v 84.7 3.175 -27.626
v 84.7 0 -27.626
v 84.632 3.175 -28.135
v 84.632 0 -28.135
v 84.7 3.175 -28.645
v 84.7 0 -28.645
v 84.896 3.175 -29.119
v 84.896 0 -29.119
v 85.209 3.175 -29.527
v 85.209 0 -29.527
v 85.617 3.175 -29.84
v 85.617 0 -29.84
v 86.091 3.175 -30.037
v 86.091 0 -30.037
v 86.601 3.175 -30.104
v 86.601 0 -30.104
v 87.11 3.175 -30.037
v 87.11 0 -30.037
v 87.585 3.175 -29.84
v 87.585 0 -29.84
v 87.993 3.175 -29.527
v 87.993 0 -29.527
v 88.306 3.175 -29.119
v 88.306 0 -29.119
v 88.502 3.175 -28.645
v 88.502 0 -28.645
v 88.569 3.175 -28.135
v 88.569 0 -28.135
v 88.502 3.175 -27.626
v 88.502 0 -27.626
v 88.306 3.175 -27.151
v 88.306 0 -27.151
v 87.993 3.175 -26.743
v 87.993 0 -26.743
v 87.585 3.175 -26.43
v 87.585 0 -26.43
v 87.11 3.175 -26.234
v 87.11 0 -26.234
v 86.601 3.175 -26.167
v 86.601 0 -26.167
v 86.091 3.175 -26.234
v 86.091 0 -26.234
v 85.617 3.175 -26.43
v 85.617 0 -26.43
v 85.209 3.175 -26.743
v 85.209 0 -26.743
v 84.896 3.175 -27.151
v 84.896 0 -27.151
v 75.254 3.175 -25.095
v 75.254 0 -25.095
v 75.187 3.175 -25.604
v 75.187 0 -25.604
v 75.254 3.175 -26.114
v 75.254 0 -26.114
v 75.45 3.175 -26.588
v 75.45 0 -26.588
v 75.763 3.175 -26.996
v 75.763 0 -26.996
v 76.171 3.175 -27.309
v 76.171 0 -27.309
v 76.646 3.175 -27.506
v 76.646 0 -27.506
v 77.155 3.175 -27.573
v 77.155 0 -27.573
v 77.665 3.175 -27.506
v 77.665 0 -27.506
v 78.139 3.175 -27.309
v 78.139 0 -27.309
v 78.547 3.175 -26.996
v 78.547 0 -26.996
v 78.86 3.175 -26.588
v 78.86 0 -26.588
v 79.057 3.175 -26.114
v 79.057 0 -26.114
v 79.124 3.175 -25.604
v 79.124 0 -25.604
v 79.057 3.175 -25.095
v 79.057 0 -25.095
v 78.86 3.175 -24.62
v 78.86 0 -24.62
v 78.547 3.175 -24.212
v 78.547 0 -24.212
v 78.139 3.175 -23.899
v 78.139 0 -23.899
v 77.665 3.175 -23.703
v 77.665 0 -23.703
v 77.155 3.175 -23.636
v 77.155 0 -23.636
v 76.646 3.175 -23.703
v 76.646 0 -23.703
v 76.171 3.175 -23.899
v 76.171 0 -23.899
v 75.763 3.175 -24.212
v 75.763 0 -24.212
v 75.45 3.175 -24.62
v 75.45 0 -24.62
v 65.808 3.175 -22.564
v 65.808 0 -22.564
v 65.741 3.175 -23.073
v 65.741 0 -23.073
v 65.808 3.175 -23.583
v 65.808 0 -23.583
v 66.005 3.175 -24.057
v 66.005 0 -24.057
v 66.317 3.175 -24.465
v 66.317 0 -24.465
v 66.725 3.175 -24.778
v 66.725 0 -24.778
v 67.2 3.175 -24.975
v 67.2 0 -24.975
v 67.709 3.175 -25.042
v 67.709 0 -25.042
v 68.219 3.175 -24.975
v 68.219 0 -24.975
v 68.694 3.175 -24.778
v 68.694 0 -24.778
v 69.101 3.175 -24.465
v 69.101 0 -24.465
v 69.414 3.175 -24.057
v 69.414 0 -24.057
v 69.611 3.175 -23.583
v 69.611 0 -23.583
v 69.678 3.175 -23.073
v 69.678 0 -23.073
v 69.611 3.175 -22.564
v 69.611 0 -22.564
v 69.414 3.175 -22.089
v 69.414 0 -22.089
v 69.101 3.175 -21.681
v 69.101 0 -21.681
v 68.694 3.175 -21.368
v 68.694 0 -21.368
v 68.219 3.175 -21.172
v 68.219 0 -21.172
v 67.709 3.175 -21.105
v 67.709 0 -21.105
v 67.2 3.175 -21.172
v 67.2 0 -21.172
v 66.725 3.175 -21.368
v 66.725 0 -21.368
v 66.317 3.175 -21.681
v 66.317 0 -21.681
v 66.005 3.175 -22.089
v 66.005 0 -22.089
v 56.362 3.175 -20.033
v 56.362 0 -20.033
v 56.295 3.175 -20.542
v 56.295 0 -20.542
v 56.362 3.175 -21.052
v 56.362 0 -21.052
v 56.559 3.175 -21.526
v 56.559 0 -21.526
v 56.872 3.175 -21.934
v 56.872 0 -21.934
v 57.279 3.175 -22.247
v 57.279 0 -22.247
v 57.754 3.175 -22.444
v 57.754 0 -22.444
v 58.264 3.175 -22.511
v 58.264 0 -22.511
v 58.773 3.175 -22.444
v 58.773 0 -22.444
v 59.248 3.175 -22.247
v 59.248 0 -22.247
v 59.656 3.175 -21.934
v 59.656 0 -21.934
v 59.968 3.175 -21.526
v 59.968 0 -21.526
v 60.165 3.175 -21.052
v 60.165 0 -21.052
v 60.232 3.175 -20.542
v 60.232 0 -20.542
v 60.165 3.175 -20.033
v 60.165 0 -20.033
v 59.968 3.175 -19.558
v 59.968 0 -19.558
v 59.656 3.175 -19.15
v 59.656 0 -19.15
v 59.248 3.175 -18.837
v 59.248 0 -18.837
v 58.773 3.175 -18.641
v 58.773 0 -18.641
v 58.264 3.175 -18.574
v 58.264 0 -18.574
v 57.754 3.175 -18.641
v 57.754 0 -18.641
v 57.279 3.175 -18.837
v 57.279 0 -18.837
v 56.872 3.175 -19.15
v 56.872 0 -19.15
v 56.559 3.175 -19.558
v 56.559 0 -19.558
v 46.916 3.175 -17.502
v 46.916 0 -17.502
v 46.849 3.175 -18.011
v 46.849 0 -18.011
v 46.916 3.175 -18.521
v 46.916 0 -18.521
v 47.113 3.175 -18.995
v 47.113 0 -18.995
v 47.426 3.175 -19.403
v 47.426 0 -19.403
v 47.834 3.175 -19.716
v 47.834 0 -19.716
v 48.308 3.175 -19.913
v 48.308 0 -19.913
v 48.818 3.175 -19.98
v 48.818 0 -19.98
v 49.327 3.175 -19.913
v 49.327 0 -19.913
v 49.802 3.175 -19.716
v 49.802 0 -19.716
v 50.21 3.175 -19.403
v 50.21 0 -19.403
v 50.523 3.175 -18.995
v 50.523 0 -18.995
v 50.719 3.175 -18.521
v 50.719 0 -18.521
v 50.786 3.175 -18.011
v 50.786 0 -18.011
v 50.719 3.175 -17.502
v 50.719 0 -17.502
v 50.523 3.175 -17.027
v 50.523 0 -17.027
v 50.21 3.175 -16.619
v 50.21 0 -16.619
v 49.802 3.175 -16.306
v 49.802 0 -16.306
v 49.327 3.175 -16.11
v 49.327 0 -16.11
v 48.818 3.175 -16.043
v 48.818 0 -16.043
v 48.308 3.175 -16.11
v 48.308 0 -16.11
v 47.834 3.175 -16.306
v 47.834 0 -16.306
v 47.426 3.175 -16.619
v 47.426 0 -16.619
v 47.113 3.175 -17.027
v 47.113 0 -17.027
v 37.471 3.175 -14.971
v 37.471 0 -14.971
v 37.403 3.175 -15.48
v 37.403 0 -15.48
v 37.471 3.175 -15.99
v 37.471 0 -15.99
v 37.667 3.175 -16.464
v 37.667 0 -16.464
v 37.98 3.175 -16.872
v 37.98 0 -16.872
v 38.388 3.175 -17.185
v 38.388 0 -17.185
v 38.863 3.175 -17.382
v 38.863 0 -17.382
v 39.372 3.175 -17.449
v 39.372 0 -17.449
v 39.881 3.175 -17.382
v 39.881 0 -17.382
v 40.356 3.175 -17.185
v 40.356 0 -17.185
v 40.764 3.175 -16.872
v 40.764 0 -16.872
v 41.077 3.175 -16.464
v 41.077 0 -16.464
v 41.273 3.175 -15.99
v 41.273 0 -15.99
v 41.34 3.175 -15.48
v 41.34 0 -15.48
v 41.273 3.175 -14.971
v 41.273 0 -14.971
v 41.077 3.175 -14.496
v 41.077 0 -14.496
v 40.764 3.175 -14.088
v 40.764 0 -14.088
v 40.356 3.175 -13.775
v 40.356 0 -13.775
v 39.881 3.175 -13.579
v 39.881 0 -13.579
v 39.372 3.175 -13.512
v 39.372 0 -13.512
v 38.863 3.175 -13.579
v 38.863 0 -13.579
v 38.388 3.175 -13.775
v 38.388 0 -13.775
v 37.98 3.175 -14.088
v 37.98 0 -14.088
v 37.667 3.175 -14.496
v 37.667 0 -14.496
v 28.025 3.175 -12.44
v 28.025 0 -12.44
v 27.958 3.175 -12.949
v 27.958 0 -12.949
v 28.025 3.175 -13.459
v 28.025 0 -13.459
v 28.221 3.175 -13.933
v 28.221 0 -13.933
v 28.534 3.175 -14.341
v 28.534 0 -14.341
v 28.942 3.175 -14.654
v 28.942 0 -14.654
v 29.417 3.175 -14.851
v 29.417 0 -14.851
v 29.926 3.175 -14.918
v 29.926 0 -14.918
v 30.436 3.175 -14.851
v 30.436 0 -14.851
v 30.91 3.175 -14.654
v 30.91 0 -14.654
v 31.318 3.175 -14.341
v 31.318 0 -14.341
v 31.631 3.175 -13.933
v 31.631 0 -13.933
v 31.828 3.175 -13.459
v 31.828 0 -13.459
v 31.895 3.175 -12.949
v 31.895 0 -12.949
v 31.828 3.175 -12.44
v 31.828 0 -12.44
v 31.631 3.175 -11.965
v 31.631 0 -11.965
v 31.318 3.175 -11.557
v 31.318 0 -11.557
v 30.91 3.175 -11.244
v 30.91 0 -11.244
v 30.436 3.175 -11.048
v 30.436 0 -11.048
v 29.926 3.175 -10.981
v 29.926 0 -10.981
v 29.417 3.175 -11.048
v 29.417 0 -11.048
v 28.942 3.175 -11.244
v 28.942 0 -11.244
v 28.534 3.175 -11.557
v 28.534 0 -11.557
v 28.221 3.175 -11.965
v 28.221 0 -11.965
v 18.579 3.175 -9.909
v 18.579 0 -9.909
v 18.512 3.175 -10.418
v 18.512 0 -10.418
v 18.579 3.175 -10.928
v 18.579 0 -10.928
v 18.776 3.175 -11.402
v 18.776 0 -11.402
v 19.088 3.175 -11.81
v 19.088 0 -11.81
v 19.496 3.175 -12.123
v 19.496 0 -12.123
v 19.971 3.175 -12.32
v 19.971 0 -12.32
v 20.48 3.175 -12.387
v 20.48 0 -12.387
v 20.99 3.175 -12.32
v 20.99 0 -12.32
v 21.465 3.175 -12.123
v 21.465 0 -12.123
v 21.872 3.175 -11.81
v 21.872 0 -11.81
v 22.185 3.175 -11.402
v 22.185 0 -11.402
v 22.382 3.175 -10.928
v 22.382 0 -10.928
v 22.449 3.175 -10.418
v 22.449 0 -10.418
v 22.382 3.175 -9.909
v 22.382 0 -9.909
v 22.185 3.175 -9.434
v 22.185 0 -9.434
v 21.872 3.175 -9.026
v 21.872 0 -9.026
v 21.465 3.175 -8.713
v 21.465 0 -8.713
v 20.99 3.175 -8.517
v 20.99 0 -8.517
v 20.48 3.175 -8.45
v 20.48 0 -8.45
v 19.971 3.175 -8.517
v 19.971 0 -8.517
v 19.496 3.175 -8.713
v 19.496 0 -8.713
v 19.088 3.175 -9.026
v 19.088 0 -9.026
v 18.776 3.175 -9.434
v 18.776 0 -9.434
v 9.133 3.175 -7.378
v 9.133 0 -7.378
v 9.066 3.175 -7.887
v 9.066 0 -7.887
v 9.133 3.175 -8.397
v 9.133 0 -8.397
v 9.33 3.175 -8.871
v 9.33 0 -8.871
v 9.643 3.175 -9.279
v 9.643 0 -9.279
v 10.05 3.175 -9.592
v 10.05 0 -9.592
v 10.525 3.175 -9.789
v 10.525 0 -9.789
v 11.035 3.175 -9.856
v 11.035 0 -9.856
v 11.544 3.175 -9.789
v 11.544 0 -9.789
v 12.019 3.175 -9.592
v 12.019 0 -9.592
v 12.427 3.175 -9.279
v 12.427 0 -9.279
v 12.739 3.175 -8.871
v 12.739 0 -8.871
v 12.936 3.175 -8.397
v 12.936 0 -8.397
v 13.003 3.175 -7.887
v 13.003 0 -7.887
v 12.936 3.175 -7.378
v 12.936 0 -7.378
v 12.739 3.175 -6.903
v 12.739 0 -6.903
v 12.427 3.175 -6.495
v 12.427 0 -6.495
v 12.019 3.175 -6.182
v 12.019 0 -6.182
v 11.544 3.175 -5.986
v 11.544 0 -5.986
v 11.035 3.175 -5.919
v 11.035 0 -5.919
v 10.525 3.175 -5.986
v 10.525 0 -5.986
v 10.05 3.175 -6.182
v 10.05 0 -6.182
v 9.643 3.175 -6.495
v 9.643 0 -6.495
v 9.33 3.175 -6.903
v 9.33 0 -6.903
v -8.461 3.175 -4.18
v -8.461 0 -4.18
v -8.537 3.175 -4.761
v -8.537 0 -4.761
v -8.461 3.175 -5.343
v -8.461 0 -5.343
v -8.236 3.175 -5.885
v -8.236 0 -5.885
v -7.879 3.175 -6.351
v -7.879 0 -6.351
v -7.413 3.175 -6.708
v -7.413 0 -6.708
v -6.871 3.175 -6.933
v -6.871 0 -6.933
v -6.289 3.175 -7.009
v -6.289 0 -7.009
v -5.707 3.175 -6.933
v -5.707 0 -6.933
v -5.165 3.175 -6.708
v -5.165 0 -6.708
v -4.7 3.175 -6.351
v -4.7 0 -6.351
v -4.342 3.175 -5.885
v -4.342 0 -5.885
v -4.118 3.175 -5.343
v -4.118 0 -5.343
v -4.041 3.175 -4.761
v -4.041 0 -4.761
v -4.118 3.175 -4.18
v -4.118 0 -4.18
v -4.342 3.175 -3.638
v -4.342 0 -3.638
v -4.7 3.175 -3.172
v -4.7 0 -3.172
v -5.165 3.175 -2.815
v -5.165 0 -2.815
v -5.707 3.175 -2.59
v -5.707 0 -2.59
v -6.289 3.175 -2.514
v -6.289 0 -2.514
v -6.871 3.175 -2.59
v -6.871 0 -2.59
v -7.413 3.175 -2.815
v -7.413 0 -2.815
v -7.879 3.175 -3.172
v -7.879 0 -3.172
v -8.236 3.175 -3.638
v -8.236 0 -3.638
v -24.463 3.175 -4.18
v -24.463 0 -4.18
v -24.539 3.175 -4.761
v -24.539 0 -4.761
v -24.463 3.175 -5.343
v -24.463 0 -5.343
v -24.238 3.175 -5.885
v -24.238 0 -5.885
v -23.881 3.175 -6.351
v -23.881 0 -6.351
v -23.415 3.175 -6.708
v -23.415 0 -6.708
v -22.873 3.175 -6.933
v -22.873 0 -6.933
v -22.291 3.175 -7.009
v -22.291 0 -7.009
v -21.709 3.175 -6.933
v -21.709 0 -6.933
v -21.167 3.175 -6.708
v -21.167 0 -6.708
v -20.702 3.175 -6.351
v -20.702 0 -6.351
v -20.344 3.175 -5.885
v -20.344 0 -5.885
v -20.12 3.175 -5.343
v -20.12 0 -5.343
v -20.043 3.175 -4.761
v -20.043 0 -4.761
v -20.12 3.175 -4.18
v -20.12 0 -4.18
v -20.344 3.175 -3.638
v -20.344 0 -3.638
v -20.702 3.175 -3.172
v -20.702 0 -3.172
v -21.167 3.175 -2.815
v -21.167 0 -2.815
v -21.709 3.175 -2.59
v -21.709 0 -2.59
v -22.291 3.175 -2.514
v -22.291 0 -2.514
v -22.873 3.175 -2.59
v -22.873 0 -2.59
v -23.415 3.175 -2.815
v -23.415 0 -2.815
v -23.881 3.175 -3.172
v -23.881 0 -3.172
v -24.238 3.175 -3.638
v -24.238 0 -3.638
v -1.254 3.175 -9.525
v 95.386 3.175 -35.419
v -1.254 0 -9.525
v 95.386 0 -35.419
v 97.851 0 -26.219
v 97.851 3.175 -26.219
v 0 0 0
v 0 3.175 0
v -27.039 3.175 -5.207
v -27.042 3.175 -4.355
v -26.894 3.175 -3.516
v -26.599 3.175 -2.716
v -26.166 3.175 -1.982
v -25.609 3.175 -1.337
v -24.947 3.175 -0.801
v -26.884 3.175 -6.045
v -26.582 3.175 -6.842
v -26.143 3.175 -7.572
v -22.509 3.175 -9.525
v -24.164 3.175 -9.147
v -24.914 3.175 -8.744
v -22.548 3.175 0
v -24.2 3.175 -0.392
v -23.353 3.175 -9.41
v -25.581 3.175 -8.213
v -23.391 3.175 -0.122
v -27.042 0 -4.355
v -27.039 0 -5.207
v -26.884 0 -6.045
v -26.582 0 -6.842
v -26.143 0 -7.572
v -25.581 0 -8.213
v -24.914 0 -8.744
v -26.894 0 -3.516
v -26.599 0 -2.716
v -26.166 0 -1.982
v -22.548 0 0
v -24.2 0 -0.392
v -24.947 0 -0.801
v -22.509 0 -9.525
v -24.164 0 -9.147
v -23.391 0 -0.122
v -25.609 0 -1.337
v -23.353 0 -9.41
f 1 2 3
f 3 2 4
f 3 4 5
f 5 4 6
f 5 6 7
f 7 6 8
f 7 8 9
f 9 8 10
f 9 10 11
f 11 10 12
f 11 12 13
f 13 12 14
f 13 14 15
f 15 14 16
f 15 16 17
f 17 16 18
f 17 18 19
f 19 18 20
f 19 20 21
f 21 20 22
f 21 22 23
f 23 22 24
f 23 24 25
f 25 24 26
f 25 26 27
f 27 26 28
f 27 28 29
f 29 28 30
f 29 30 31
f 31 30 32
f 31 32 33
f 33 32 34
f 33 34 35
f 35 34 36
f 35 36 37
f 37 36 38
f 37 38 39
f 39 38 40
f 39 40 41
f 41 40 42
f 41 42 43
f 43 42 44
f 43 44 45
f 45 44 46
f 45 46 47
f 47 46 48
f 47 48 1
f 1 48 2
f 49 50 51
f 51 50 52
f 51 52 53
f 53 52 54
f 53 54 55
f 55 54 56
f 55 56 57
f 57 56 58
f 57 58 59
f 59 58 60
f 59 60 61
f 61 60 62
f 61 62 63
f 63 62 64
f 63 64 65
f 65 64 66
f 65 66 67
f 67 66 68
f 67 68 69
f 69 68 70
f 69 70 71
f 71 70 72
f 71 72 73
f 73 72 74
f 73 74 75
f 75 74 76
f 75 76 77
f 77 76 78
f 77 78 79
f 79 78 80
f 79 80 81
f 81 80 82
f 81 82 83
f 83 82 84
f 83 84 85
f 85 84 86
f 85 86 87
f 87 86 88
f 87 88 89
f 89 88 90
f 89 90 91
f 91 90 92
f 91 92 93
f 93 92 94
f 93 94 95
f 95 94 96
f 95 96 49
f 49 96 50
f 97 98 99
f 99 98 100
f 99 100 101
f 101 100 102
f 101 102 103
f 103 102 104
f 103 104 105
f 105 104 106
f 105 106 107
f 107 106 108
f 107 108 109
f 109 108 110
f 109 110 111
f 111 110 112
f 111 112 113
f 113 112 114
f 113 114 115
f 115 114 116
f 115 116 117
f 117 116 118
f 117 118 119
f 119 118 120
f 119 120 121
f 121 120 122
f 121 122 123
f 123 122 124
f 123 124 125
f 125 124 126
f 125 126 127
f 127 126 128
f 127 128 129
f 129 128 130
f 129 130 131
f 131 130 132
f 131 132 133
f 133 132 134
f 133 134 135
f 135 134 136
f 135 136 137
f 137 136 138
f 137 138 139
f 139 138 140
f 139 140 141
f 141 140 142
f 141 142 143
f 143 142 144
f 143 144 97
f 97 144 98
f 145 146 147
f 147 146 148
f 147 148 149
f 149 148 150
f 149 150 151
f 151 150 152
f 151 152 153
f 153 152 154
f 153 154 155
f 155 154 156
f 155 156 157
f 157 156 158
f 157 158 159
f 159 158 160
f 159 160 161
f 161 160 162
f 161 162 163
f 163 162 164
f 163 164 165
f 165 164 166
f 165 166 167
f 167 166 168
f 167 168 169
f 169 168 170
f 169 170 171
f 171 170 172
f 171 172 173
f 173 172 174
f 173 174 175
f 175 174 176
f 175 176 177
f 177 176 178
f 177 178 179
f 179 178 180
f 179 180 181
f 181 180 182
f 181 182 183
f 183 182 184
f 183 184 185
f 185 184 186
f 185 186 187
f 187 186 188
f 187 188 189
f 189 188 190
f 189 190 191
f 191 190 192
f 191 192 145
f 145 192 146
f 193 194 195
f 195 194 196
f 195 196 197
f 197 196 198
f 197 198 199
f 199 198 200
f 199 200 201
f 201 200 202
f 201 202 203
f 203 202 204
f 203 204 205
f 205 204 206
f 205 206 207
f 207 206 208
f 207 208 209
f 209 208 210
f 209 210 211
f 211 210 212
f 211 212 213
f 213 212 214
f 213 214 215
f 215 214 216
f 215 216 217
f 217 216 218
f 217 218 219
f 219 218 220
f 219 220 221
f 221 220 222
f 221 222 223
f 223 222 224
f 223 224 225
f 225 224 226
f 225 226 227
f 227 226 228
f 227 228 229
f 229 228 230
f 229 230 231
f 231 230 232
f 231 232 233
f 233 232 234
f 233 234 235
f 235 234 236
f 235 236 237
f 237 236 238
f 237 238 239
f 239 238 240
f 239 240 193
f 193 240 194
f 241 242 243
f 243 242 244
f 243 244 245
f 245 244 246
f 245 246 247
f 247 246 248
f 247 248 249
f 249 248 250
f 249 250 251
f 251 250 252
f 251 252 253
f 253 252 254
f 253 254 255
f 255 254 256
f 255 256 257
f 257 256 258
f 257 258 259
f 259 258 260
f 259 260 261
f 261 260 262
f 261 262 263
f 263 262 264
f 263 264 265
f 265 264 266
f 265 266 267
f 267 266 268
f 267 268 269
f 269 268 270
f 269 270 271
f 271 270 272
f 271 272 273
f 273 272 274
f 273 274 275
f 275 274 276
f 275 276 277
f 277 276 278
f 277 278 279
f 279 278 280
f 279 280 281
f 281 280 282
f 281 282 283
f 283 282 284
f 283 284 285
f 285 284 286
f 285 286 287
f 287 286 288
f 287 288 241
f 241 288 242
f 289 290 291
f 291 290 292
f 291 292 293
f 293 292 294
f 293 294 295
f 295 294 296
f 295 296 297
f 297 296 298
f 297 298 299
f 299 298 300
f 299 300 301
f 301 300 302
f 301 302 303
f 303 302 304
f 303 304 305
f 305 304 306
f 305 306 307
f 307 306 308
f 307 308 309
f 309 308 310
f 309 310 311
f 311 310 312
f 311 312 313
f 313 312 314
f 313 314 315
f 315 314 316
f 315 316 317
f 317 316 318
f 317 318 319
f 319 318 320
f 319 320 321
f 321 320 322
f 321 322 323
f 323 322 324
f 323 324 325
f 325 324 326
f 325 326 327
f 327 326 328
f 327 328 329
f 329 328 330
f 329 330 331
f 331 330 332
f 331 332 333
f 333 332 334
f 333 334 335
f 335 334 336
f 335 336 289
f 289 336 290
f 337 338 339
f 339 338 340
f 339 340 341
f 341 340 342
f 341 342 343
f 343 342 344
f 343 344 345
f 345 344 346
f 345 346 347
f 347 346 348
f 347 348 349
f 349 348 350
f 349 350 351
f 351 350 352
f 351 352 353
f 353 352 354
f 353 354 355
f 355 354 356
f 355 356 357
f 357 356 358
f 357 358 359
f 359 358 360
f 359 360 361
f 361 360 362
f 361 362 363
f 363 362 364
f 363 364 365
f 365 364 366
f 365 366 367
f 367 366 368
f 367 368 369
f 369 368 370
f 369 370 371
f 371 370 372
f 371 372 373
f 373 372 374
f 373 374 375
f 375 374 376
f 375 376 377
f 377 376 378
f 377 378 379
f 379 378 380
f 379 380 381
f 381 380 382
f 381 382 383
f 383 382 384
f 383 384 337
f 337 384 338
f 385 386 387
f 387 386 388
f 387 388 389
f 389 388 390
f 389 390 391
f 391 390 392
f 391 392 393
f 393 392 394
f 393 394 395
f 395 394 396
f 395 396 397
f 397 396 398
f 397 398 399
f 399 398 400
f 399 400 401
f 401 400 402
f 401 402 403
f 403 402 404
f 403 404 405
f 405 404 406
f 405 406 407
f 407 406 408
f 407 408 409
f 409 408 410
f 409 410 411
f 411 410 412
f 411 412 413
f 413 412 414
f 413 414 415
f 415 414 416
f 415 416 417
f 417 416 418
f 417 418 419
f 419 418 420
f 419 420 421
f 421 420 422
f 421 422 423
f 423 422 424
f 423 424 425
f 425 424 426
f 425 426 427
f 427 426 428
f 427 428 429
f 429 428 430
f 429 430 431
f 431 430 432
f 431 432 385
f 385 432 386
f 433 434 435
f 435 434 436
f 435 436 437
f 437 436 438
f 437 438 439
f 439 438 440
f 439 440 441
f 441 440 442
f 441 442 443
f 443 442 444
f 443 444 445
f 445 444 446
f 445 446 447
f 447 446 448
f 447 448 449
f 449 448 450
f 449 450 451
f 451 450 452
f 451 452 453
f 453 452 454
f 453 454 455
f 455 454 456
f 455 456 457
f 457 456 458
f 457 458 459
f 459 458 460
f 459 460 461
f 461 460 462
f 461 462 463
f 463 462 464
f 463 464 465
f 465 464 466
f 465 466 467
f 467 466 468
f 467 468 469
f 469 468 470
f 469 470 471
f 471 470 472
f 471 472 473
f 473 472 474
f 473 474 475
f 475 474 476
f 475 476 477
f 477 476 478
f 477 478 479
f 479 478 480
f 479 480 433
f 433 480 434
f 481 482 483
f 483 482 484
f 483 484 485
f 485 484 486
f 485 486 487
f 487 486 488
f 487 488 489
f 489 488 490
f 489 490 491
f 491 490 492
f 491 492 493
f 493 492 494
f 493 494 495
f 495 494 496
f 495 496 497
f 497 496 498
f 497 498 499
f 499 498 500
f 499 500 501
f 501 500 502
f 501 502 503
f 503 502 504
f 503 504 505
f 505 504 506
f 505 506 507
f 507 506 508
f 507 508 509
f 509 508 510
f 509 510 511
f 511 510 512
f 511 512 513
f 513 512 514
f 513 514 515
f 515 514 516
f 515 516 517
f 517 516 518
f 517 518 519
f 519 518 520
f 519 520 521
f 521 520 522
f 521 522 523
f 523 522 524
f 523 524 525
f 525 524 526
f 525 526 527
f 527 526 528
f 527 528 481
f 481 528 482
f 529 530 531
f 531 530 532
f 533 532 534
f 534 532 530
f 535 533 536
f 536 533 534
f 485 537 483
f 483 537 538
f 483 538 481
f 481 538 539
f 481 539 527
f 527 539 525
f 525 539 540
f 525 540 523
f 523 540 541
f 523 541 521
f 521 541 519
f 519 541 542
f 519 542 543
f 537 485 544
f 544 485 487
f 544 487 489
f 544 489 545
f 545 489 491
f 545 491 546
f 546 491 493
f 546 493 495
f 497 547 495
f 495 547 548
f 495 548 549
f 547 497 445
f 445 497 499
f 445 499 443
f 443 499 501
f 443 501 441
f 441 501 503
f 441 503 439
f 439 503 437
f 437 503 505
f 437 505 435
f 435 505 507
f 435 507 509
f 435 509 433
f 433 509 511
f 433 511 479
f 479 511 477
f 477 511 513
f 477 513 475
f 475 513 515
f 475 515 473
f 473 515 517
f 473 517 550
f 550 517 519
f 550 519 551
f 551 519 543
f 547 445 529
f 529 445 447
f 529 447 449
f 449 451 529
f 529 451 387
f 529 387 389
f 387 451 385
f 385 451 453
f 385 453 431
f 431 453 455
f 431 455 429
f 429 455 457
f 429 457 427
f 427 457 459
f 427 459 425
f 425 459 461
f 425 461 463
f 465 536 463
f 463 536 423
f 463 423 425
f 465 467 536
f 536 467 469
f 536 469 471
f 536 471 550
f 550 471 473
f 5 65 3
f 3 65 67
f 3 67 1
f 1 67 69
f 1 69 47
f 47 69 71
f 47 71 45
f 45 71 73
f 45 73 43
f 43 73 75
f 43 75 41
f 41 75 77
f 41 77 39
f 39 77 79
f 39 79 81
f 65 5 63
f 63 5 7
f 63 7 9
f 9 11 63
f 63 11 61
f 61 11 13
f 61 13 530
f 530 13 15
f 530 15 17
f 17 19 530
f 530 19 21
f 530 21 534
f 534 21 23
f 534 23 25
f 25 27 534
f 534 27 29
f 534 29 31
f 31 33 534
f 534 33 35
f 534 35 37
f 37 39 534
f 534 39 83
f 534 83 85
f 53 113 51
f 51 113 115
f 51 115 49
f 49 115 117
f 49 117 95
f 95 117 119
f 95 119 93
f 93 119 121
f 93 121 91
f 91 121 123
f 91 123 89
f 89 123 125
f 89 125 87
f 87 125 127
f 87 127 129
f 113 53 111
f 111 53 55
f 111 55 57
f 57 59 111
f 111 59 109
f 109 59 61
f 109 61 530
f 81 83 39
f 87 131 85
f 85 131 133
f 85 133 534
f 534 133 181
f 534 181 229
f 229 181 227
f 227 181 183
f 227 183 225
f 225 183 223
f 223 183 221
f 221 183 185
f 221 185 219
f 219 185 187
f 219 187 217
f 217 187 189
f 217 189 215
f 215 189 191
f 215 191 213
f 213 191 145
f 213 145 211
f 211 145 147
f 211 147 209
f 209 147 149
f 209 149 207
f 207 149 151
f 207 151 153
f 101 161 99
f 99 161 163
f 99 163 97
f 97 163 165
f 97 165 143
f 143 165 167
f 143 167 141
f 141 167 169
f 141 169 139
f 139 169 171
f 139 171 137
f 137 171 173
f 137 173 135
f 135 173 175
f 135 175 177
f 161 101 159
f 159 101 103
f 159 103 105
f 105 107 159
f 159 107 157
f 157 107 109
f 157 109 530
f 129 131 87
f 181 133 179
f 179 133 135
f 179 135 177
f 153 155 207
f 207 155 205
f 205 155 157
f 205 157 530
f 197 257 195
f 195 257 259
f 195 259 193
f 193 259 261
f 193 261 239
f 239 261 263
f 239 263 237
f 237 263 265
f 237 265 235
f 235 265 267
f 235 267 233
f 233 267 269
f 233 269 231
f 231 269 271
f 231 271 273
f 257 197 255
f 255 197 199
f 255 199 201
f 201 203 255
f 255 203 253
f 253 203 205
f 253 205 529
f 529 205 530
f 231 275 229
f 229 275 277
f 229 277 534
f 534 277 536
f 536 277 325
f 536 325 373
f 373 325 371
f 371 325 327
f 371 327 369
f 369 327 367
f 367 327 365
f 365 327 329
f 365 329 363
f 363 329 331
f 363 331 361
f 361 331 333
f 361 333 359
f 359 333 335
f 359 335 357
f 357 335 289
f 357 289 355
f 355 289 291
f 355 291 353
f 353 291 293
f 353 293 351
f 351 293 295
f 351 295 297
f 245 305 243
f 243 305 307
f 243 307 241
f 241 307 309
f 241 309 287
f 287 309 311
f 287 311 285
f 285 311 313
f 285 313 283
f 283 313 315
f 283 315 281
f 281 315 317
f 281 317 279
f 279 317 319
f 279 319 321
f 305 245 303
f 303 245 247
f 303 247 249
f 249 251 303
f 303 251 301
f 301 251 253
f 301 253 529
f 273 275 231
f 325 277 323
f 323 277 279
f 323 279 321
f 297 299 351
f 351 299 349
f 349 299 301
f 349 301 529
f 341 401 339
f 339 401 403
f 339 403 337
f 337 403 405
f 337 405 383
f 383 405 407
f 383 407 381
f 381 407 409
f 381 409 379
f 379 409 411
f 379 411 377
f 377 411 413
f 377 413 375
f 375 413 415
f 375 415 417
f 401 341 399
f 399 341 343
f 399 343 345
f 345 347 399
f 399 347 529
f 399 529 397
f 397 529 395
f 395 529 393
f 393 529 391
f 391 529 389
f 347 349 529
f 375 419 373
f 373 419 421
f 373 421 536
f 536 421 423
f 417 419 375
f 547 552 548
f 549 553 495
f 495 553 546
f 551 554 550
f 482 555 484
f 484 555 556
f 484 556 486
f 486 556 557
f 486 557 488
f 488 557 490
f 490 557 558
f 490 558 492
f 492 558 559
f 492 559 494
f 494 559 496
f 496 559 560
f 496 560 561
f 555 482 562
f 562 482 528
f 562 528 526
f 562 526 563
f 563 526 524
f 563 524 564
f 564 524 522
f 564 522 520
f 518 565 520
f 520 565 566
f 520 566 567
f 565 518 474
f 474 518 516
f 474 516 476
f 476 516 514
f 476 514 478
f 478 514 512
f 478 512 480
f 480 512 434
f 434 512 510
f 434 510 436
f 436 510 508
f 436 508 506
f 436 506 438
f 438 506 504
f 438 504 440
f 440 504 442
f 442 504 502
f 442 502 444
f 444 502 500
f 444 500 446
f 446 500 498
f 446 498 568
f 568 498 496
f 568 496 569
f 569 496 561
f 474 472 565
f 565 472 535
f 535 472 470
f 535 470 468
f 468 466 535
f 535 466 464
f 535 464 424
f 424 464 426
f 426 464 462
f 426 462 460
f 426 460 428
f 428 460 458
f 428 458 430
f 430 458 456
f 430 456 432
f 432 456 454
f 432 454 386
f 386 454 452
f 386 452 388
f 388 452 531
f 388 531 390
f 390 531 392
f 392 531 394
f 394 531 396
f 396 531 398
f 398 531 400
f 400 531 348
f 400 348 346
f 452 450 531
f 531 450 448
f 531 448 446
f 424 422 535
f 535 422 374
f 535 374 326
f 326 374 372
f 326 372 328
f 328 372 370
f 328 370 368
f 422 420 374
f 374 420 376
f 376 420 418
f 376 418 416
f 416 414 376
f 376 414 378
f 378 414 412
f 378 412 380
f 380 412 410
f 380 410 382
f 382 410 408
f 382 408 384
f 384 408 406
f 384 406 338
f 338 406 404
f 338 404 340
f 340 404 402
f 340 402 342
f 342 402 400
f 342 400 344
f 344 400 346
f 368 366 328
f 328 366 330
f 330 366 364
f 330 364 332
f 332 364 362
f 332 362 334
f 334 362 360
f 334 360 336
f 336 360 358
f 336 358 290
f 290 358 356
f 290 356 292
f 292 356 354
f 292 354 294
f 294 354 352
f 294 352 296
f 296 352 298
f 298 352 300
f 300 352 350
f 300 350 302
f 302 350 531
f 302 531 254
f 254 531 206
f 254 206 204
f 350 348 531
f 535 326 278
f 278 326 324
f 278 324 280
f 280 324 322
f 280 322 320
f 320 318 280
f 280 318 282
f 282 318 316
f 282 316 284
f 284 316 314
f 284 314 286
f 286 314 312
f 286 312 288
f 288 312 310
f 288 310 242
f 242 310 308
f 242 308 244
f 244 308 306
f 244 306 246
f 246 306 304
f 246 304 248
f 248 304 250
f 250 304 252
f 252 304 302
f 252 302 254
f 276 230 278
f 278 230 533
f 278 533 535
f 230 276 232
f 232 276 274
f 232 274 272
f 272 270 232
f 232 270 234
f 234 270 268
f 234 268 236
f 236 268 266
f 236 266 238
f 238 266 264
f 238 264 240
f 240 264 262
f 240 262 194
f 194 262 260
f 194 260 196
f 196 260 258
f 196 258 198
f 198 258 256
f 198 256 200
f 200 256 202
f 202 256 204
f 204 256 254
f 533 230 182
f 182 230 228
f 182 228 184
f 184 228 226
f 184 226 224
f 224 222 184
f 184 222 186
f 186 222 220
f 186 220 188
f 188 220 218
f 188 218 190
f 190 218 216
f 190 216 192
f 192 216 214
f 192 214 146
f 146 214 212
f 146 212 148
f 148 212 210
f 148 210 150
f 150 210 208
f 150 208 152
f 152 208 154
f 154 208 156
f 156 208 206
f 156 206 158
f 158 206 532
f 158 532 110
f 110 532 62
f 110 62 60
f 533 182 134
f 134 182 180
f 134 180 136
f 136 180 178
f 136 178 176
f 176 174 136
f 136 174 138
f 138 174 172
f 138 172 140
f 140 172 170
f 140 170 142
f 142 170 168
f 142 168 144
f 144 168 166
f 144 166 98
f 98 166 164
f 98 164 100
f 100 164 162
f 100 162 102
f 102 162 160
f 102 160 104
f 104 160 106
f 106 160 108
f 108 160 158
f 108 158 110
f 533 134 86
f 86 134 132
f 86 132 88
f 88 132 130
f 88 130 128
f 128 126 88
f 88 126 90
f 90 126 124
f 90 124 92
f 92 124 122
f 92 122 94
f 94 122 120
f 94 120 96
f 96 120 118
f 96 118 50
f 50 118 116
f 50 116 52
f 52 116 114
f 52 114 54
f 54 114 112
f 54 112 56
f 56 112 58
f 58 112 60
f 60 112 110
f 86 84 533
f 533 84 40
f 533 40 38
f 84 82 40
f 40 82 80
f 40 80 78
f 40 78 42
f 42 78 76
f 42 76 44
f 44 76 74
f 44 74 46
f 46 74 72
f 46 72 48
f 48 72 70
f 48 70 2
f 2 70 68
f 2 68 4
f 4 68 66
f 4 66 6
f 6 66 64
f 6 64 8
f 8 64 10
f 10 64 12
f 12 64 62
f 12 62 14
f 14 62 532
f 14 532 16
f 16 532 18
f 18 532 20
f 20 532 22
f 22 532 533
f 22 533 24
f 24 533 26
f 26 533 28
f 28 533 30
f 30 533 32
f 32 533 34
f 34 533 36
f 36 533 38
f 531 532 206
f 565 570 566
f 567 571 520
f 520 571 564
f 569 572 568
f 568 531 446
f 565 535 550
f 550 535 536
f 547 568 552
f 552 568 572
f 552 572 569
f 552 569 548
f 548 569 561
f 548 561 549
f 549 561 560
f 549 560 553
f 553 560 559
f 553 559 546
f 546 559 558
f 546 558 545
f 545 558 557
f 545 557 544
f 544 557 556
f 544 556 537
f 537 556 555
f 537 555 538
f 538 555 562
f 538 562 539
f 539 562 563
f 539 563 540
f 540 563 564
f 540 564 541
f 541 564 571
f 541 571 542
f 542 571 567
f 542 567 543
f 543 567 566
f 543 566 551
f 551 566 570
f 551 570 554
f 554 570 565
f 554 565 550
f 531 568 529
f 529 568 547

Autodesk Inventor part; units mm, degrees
ref_plane "YZ Plane" through (0, 0, 0) normal (1, 0, 0) x (0, 1, 0)
ref_plane "XZ Plane" through (0, 0, 0) normal (0, 1, 0) x (-1, 0, 0)
ref_plane "XY Plane" through (0, 0, 0) normal (0, 0, 1) x (1, 0, 0)
sketch "Sketch1" plane through (0, 0, 0) normal (0, 1, 0) x (-1, 0, 0)
  line L0 (0, 0) -> (22.5479, 0)
  line L1 (22.5089, -9.5249) -> (-0.0209, -9.5249)
  line L2 (-0.0209, -9.5249) -> (0, 0)
  arc A0 (22.5089, -9.5249) -> (22.5479, 0) centre (22.2912, -4.7615) ccw
  line L3 (0, 0) -> (-97.8508, -26.219)
  line L4 (0, 0) -> (101.3026, 0) construction
  line L5 (-97.8508, -26.219) -> (-95.3856, -35.4195)
  line L6 (0, 0) -> (2.4653, -9.2004)
  line L7 (2.4653, -9.2004) -> (-95.3856, -35.4195)
  circle A1 centre (22.2912, -4.7615) radius 2.2479
  line L8 (22.2912, -4.7615) -> (6.2892, -4.7615) construction
  circle A2 centre (6.2892, -4.7615) radius 2.2479
  line L9 (1.2326, -4.6002) -> (-11.0346, -7.8872) construction
  circle A3 centre (-11.0346, -7.8872) radius 1.9685
  line L10 (1.2326, -4.6002) -> (-96.6182, -30.8193) construction
  circle A4 centre (-20.4804, -10.4182) radius 1.9685
  circle A5 centre (-29.9262, -12.9492) radius 1.9685
  circle A6 centre (-39.372, -15.4802) radius 1.9685
  circle A7 centre (-48.8178, -18.0112) radius 1.9685
  circle A8 centre (-58.2636, -20.5422) radius 1.9685
  circle A9 centre (-67.7094, -23.0732) radius 1.9685
  circle A10 centre (-77.1552, -25.6042) radius 1.9685
  circle A11 centre (-86.6009, -28.1352) radius 1.9685
  line L11 (22.2912, -4.7615) -> (6.1685, -4.7615) construction
  line L12 (6.1685, -4.7615) -> (6.1685, 11.2405) construction
  line L13 (6.1685, 11.2405) -> (22.2912, 11.2405) construction
  line L14 (22.2912, 11.2405) -> (22.2912, -4.7615) construction
  line L15 (14.2299, 11.2405) -> (14.2299, -4.7615) construction
  line L16 (22.2912, 3.2395) -> (6.1685, 3.2395) construction
  circle A12 centre (14.2299, 3.2395) radius 1.27 construction
  dimension "d0" = 22.5298
  dimension "d1" = 9.525
  dimension "d2" = 4.7684
  dimension "d4" = 165
  dimension "d7" = 9.525
  dimension "d8" = 9.525
  dimension "d9" = 4.4958
  dimension "d10" = 16.002
  dimension "d11" = 4.4958
  dimension "d12" = 12.7
  dimension "d13" = 3.937
  dimension "d14" = 4.7625
  dimension "d15" = 3.937
  dimension "d16" = 9.779
  dimension "d17" = 3.937
  dimension "d18" = 9.779
  dimension "d19" = 3.937
  dimension "d20" = 9.779
  dimension "d21" = 3.937
  dimension "d22" = 9.779
  dimension "d23" = 3.937
  dimension "d24" = 9.779
  dimension "d25" = 3.937
  dimension "d26" = 9.779
  dimension "d27" = 3.937
  dimension "d28" = 9.779
  dimension "d29" = 3.937
  dimension "d30" = 9.779
  dimension "d31" = 16.002
  dimension "d32" = 2.54
  dimension "d33" = 115.8874
extrude "Extrusion1" add sketch "Sketch1" along normal blind 3.175
properties part number "CollectorArm165"
